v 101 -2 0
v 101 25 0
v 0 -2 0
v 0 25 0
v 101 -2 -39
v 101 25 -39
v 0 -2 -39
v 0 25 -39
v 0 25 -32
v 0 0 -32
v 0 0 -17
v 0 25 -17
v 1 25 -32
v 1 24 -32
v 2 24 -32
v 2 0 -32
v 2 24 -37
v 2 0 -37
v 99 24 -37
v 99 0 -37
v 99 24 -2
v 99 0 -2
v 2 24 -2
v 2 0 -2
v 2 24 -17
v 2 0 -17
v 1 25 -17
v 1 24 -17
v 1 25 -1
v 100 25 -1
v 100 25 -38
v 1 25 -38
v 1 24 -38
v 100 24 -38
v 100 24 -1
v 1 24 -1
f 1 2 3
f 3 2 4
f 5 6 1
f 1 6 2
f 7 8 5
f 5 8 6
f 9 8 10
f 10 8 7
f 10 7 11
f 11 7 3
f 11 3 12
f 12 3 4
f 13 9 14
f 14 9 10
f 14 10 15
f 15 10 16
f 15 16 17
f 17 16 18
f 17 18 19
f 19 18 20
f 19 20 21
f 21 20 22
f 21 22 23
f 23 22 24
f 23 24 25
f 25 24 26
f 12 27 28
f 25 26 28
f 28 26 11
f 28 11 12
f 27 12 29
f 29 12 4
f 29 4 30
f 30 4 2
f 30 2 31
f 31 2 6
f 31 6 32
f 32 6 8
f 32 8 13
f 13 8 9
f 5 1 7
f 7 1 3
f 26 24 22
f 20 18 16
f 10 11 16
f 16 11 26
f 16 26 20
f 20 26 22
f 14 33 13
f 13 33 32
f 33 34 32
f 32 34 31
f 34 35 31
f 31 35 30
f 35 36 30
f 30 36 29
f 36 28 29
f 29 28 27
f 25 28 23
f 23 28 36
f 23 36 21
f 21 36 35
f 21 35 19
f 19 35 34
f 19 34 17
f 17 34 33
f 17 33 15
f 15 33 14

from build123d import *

# Parameters (mm, degrees)
BOSS_EXTRUDE1_DEPTH = 25
SKETCH2_W           = 101
SKETCH2_H           = 39
BOSS_EXTRUDE2_DEPTH = 2
CUT_EXTRUDE1_DEPTH  = 1


with BuildPart() as part:
    # Sketch1 → Boss-Extrude1 (new body)
    with BuildSketch(Plane(origin=(0, 0, 0), x_dir=(1, 0, 0), z_dir=(0, 1, 0))):
        Polygon((0, 39), (0, 32), (2, 32), (2, 37), (99, 37), (99, 2), (2, 2), (2, 17), (0, 17), (0, 0), (101, 0), (101, 39), align=None)
    extrude(amount=BOSS_EXTRUDE1_DEPTH)

    # Sketch2 → Boss-Extrude2 (add)
    with BuildSketch(Plane(origin=(0, 0, 0), x_dir=(-1, 0, 0), z_dir=(0, -1, 0))):
        with Locations((-50.5, 19.5)):
            Rectangle(SKETCH2_W, SKETCH2_H)
    extrude(amount=BOSS_EXTRUDE2_DEPTH)

    # Sketch3 → Cut-Extrude1 (cut)
    with BuildSketch(Plane(origin=(0, 25, 0), x_dir=(1, 0, 0), z_dir=(0, 1, 0))):
        Polygon((2, 32), (1, 32), (1, 38), (100, 38), (100, 1), (1, 1), (1, 17), (2, 17), (2, 2), (99, 2), (99, 37), (2, 37), align=None)
    extrude(amount=-CUT_EXTRUDE1_DEPTH, mode=Mode.SUBTRACT)


solid = part.part
